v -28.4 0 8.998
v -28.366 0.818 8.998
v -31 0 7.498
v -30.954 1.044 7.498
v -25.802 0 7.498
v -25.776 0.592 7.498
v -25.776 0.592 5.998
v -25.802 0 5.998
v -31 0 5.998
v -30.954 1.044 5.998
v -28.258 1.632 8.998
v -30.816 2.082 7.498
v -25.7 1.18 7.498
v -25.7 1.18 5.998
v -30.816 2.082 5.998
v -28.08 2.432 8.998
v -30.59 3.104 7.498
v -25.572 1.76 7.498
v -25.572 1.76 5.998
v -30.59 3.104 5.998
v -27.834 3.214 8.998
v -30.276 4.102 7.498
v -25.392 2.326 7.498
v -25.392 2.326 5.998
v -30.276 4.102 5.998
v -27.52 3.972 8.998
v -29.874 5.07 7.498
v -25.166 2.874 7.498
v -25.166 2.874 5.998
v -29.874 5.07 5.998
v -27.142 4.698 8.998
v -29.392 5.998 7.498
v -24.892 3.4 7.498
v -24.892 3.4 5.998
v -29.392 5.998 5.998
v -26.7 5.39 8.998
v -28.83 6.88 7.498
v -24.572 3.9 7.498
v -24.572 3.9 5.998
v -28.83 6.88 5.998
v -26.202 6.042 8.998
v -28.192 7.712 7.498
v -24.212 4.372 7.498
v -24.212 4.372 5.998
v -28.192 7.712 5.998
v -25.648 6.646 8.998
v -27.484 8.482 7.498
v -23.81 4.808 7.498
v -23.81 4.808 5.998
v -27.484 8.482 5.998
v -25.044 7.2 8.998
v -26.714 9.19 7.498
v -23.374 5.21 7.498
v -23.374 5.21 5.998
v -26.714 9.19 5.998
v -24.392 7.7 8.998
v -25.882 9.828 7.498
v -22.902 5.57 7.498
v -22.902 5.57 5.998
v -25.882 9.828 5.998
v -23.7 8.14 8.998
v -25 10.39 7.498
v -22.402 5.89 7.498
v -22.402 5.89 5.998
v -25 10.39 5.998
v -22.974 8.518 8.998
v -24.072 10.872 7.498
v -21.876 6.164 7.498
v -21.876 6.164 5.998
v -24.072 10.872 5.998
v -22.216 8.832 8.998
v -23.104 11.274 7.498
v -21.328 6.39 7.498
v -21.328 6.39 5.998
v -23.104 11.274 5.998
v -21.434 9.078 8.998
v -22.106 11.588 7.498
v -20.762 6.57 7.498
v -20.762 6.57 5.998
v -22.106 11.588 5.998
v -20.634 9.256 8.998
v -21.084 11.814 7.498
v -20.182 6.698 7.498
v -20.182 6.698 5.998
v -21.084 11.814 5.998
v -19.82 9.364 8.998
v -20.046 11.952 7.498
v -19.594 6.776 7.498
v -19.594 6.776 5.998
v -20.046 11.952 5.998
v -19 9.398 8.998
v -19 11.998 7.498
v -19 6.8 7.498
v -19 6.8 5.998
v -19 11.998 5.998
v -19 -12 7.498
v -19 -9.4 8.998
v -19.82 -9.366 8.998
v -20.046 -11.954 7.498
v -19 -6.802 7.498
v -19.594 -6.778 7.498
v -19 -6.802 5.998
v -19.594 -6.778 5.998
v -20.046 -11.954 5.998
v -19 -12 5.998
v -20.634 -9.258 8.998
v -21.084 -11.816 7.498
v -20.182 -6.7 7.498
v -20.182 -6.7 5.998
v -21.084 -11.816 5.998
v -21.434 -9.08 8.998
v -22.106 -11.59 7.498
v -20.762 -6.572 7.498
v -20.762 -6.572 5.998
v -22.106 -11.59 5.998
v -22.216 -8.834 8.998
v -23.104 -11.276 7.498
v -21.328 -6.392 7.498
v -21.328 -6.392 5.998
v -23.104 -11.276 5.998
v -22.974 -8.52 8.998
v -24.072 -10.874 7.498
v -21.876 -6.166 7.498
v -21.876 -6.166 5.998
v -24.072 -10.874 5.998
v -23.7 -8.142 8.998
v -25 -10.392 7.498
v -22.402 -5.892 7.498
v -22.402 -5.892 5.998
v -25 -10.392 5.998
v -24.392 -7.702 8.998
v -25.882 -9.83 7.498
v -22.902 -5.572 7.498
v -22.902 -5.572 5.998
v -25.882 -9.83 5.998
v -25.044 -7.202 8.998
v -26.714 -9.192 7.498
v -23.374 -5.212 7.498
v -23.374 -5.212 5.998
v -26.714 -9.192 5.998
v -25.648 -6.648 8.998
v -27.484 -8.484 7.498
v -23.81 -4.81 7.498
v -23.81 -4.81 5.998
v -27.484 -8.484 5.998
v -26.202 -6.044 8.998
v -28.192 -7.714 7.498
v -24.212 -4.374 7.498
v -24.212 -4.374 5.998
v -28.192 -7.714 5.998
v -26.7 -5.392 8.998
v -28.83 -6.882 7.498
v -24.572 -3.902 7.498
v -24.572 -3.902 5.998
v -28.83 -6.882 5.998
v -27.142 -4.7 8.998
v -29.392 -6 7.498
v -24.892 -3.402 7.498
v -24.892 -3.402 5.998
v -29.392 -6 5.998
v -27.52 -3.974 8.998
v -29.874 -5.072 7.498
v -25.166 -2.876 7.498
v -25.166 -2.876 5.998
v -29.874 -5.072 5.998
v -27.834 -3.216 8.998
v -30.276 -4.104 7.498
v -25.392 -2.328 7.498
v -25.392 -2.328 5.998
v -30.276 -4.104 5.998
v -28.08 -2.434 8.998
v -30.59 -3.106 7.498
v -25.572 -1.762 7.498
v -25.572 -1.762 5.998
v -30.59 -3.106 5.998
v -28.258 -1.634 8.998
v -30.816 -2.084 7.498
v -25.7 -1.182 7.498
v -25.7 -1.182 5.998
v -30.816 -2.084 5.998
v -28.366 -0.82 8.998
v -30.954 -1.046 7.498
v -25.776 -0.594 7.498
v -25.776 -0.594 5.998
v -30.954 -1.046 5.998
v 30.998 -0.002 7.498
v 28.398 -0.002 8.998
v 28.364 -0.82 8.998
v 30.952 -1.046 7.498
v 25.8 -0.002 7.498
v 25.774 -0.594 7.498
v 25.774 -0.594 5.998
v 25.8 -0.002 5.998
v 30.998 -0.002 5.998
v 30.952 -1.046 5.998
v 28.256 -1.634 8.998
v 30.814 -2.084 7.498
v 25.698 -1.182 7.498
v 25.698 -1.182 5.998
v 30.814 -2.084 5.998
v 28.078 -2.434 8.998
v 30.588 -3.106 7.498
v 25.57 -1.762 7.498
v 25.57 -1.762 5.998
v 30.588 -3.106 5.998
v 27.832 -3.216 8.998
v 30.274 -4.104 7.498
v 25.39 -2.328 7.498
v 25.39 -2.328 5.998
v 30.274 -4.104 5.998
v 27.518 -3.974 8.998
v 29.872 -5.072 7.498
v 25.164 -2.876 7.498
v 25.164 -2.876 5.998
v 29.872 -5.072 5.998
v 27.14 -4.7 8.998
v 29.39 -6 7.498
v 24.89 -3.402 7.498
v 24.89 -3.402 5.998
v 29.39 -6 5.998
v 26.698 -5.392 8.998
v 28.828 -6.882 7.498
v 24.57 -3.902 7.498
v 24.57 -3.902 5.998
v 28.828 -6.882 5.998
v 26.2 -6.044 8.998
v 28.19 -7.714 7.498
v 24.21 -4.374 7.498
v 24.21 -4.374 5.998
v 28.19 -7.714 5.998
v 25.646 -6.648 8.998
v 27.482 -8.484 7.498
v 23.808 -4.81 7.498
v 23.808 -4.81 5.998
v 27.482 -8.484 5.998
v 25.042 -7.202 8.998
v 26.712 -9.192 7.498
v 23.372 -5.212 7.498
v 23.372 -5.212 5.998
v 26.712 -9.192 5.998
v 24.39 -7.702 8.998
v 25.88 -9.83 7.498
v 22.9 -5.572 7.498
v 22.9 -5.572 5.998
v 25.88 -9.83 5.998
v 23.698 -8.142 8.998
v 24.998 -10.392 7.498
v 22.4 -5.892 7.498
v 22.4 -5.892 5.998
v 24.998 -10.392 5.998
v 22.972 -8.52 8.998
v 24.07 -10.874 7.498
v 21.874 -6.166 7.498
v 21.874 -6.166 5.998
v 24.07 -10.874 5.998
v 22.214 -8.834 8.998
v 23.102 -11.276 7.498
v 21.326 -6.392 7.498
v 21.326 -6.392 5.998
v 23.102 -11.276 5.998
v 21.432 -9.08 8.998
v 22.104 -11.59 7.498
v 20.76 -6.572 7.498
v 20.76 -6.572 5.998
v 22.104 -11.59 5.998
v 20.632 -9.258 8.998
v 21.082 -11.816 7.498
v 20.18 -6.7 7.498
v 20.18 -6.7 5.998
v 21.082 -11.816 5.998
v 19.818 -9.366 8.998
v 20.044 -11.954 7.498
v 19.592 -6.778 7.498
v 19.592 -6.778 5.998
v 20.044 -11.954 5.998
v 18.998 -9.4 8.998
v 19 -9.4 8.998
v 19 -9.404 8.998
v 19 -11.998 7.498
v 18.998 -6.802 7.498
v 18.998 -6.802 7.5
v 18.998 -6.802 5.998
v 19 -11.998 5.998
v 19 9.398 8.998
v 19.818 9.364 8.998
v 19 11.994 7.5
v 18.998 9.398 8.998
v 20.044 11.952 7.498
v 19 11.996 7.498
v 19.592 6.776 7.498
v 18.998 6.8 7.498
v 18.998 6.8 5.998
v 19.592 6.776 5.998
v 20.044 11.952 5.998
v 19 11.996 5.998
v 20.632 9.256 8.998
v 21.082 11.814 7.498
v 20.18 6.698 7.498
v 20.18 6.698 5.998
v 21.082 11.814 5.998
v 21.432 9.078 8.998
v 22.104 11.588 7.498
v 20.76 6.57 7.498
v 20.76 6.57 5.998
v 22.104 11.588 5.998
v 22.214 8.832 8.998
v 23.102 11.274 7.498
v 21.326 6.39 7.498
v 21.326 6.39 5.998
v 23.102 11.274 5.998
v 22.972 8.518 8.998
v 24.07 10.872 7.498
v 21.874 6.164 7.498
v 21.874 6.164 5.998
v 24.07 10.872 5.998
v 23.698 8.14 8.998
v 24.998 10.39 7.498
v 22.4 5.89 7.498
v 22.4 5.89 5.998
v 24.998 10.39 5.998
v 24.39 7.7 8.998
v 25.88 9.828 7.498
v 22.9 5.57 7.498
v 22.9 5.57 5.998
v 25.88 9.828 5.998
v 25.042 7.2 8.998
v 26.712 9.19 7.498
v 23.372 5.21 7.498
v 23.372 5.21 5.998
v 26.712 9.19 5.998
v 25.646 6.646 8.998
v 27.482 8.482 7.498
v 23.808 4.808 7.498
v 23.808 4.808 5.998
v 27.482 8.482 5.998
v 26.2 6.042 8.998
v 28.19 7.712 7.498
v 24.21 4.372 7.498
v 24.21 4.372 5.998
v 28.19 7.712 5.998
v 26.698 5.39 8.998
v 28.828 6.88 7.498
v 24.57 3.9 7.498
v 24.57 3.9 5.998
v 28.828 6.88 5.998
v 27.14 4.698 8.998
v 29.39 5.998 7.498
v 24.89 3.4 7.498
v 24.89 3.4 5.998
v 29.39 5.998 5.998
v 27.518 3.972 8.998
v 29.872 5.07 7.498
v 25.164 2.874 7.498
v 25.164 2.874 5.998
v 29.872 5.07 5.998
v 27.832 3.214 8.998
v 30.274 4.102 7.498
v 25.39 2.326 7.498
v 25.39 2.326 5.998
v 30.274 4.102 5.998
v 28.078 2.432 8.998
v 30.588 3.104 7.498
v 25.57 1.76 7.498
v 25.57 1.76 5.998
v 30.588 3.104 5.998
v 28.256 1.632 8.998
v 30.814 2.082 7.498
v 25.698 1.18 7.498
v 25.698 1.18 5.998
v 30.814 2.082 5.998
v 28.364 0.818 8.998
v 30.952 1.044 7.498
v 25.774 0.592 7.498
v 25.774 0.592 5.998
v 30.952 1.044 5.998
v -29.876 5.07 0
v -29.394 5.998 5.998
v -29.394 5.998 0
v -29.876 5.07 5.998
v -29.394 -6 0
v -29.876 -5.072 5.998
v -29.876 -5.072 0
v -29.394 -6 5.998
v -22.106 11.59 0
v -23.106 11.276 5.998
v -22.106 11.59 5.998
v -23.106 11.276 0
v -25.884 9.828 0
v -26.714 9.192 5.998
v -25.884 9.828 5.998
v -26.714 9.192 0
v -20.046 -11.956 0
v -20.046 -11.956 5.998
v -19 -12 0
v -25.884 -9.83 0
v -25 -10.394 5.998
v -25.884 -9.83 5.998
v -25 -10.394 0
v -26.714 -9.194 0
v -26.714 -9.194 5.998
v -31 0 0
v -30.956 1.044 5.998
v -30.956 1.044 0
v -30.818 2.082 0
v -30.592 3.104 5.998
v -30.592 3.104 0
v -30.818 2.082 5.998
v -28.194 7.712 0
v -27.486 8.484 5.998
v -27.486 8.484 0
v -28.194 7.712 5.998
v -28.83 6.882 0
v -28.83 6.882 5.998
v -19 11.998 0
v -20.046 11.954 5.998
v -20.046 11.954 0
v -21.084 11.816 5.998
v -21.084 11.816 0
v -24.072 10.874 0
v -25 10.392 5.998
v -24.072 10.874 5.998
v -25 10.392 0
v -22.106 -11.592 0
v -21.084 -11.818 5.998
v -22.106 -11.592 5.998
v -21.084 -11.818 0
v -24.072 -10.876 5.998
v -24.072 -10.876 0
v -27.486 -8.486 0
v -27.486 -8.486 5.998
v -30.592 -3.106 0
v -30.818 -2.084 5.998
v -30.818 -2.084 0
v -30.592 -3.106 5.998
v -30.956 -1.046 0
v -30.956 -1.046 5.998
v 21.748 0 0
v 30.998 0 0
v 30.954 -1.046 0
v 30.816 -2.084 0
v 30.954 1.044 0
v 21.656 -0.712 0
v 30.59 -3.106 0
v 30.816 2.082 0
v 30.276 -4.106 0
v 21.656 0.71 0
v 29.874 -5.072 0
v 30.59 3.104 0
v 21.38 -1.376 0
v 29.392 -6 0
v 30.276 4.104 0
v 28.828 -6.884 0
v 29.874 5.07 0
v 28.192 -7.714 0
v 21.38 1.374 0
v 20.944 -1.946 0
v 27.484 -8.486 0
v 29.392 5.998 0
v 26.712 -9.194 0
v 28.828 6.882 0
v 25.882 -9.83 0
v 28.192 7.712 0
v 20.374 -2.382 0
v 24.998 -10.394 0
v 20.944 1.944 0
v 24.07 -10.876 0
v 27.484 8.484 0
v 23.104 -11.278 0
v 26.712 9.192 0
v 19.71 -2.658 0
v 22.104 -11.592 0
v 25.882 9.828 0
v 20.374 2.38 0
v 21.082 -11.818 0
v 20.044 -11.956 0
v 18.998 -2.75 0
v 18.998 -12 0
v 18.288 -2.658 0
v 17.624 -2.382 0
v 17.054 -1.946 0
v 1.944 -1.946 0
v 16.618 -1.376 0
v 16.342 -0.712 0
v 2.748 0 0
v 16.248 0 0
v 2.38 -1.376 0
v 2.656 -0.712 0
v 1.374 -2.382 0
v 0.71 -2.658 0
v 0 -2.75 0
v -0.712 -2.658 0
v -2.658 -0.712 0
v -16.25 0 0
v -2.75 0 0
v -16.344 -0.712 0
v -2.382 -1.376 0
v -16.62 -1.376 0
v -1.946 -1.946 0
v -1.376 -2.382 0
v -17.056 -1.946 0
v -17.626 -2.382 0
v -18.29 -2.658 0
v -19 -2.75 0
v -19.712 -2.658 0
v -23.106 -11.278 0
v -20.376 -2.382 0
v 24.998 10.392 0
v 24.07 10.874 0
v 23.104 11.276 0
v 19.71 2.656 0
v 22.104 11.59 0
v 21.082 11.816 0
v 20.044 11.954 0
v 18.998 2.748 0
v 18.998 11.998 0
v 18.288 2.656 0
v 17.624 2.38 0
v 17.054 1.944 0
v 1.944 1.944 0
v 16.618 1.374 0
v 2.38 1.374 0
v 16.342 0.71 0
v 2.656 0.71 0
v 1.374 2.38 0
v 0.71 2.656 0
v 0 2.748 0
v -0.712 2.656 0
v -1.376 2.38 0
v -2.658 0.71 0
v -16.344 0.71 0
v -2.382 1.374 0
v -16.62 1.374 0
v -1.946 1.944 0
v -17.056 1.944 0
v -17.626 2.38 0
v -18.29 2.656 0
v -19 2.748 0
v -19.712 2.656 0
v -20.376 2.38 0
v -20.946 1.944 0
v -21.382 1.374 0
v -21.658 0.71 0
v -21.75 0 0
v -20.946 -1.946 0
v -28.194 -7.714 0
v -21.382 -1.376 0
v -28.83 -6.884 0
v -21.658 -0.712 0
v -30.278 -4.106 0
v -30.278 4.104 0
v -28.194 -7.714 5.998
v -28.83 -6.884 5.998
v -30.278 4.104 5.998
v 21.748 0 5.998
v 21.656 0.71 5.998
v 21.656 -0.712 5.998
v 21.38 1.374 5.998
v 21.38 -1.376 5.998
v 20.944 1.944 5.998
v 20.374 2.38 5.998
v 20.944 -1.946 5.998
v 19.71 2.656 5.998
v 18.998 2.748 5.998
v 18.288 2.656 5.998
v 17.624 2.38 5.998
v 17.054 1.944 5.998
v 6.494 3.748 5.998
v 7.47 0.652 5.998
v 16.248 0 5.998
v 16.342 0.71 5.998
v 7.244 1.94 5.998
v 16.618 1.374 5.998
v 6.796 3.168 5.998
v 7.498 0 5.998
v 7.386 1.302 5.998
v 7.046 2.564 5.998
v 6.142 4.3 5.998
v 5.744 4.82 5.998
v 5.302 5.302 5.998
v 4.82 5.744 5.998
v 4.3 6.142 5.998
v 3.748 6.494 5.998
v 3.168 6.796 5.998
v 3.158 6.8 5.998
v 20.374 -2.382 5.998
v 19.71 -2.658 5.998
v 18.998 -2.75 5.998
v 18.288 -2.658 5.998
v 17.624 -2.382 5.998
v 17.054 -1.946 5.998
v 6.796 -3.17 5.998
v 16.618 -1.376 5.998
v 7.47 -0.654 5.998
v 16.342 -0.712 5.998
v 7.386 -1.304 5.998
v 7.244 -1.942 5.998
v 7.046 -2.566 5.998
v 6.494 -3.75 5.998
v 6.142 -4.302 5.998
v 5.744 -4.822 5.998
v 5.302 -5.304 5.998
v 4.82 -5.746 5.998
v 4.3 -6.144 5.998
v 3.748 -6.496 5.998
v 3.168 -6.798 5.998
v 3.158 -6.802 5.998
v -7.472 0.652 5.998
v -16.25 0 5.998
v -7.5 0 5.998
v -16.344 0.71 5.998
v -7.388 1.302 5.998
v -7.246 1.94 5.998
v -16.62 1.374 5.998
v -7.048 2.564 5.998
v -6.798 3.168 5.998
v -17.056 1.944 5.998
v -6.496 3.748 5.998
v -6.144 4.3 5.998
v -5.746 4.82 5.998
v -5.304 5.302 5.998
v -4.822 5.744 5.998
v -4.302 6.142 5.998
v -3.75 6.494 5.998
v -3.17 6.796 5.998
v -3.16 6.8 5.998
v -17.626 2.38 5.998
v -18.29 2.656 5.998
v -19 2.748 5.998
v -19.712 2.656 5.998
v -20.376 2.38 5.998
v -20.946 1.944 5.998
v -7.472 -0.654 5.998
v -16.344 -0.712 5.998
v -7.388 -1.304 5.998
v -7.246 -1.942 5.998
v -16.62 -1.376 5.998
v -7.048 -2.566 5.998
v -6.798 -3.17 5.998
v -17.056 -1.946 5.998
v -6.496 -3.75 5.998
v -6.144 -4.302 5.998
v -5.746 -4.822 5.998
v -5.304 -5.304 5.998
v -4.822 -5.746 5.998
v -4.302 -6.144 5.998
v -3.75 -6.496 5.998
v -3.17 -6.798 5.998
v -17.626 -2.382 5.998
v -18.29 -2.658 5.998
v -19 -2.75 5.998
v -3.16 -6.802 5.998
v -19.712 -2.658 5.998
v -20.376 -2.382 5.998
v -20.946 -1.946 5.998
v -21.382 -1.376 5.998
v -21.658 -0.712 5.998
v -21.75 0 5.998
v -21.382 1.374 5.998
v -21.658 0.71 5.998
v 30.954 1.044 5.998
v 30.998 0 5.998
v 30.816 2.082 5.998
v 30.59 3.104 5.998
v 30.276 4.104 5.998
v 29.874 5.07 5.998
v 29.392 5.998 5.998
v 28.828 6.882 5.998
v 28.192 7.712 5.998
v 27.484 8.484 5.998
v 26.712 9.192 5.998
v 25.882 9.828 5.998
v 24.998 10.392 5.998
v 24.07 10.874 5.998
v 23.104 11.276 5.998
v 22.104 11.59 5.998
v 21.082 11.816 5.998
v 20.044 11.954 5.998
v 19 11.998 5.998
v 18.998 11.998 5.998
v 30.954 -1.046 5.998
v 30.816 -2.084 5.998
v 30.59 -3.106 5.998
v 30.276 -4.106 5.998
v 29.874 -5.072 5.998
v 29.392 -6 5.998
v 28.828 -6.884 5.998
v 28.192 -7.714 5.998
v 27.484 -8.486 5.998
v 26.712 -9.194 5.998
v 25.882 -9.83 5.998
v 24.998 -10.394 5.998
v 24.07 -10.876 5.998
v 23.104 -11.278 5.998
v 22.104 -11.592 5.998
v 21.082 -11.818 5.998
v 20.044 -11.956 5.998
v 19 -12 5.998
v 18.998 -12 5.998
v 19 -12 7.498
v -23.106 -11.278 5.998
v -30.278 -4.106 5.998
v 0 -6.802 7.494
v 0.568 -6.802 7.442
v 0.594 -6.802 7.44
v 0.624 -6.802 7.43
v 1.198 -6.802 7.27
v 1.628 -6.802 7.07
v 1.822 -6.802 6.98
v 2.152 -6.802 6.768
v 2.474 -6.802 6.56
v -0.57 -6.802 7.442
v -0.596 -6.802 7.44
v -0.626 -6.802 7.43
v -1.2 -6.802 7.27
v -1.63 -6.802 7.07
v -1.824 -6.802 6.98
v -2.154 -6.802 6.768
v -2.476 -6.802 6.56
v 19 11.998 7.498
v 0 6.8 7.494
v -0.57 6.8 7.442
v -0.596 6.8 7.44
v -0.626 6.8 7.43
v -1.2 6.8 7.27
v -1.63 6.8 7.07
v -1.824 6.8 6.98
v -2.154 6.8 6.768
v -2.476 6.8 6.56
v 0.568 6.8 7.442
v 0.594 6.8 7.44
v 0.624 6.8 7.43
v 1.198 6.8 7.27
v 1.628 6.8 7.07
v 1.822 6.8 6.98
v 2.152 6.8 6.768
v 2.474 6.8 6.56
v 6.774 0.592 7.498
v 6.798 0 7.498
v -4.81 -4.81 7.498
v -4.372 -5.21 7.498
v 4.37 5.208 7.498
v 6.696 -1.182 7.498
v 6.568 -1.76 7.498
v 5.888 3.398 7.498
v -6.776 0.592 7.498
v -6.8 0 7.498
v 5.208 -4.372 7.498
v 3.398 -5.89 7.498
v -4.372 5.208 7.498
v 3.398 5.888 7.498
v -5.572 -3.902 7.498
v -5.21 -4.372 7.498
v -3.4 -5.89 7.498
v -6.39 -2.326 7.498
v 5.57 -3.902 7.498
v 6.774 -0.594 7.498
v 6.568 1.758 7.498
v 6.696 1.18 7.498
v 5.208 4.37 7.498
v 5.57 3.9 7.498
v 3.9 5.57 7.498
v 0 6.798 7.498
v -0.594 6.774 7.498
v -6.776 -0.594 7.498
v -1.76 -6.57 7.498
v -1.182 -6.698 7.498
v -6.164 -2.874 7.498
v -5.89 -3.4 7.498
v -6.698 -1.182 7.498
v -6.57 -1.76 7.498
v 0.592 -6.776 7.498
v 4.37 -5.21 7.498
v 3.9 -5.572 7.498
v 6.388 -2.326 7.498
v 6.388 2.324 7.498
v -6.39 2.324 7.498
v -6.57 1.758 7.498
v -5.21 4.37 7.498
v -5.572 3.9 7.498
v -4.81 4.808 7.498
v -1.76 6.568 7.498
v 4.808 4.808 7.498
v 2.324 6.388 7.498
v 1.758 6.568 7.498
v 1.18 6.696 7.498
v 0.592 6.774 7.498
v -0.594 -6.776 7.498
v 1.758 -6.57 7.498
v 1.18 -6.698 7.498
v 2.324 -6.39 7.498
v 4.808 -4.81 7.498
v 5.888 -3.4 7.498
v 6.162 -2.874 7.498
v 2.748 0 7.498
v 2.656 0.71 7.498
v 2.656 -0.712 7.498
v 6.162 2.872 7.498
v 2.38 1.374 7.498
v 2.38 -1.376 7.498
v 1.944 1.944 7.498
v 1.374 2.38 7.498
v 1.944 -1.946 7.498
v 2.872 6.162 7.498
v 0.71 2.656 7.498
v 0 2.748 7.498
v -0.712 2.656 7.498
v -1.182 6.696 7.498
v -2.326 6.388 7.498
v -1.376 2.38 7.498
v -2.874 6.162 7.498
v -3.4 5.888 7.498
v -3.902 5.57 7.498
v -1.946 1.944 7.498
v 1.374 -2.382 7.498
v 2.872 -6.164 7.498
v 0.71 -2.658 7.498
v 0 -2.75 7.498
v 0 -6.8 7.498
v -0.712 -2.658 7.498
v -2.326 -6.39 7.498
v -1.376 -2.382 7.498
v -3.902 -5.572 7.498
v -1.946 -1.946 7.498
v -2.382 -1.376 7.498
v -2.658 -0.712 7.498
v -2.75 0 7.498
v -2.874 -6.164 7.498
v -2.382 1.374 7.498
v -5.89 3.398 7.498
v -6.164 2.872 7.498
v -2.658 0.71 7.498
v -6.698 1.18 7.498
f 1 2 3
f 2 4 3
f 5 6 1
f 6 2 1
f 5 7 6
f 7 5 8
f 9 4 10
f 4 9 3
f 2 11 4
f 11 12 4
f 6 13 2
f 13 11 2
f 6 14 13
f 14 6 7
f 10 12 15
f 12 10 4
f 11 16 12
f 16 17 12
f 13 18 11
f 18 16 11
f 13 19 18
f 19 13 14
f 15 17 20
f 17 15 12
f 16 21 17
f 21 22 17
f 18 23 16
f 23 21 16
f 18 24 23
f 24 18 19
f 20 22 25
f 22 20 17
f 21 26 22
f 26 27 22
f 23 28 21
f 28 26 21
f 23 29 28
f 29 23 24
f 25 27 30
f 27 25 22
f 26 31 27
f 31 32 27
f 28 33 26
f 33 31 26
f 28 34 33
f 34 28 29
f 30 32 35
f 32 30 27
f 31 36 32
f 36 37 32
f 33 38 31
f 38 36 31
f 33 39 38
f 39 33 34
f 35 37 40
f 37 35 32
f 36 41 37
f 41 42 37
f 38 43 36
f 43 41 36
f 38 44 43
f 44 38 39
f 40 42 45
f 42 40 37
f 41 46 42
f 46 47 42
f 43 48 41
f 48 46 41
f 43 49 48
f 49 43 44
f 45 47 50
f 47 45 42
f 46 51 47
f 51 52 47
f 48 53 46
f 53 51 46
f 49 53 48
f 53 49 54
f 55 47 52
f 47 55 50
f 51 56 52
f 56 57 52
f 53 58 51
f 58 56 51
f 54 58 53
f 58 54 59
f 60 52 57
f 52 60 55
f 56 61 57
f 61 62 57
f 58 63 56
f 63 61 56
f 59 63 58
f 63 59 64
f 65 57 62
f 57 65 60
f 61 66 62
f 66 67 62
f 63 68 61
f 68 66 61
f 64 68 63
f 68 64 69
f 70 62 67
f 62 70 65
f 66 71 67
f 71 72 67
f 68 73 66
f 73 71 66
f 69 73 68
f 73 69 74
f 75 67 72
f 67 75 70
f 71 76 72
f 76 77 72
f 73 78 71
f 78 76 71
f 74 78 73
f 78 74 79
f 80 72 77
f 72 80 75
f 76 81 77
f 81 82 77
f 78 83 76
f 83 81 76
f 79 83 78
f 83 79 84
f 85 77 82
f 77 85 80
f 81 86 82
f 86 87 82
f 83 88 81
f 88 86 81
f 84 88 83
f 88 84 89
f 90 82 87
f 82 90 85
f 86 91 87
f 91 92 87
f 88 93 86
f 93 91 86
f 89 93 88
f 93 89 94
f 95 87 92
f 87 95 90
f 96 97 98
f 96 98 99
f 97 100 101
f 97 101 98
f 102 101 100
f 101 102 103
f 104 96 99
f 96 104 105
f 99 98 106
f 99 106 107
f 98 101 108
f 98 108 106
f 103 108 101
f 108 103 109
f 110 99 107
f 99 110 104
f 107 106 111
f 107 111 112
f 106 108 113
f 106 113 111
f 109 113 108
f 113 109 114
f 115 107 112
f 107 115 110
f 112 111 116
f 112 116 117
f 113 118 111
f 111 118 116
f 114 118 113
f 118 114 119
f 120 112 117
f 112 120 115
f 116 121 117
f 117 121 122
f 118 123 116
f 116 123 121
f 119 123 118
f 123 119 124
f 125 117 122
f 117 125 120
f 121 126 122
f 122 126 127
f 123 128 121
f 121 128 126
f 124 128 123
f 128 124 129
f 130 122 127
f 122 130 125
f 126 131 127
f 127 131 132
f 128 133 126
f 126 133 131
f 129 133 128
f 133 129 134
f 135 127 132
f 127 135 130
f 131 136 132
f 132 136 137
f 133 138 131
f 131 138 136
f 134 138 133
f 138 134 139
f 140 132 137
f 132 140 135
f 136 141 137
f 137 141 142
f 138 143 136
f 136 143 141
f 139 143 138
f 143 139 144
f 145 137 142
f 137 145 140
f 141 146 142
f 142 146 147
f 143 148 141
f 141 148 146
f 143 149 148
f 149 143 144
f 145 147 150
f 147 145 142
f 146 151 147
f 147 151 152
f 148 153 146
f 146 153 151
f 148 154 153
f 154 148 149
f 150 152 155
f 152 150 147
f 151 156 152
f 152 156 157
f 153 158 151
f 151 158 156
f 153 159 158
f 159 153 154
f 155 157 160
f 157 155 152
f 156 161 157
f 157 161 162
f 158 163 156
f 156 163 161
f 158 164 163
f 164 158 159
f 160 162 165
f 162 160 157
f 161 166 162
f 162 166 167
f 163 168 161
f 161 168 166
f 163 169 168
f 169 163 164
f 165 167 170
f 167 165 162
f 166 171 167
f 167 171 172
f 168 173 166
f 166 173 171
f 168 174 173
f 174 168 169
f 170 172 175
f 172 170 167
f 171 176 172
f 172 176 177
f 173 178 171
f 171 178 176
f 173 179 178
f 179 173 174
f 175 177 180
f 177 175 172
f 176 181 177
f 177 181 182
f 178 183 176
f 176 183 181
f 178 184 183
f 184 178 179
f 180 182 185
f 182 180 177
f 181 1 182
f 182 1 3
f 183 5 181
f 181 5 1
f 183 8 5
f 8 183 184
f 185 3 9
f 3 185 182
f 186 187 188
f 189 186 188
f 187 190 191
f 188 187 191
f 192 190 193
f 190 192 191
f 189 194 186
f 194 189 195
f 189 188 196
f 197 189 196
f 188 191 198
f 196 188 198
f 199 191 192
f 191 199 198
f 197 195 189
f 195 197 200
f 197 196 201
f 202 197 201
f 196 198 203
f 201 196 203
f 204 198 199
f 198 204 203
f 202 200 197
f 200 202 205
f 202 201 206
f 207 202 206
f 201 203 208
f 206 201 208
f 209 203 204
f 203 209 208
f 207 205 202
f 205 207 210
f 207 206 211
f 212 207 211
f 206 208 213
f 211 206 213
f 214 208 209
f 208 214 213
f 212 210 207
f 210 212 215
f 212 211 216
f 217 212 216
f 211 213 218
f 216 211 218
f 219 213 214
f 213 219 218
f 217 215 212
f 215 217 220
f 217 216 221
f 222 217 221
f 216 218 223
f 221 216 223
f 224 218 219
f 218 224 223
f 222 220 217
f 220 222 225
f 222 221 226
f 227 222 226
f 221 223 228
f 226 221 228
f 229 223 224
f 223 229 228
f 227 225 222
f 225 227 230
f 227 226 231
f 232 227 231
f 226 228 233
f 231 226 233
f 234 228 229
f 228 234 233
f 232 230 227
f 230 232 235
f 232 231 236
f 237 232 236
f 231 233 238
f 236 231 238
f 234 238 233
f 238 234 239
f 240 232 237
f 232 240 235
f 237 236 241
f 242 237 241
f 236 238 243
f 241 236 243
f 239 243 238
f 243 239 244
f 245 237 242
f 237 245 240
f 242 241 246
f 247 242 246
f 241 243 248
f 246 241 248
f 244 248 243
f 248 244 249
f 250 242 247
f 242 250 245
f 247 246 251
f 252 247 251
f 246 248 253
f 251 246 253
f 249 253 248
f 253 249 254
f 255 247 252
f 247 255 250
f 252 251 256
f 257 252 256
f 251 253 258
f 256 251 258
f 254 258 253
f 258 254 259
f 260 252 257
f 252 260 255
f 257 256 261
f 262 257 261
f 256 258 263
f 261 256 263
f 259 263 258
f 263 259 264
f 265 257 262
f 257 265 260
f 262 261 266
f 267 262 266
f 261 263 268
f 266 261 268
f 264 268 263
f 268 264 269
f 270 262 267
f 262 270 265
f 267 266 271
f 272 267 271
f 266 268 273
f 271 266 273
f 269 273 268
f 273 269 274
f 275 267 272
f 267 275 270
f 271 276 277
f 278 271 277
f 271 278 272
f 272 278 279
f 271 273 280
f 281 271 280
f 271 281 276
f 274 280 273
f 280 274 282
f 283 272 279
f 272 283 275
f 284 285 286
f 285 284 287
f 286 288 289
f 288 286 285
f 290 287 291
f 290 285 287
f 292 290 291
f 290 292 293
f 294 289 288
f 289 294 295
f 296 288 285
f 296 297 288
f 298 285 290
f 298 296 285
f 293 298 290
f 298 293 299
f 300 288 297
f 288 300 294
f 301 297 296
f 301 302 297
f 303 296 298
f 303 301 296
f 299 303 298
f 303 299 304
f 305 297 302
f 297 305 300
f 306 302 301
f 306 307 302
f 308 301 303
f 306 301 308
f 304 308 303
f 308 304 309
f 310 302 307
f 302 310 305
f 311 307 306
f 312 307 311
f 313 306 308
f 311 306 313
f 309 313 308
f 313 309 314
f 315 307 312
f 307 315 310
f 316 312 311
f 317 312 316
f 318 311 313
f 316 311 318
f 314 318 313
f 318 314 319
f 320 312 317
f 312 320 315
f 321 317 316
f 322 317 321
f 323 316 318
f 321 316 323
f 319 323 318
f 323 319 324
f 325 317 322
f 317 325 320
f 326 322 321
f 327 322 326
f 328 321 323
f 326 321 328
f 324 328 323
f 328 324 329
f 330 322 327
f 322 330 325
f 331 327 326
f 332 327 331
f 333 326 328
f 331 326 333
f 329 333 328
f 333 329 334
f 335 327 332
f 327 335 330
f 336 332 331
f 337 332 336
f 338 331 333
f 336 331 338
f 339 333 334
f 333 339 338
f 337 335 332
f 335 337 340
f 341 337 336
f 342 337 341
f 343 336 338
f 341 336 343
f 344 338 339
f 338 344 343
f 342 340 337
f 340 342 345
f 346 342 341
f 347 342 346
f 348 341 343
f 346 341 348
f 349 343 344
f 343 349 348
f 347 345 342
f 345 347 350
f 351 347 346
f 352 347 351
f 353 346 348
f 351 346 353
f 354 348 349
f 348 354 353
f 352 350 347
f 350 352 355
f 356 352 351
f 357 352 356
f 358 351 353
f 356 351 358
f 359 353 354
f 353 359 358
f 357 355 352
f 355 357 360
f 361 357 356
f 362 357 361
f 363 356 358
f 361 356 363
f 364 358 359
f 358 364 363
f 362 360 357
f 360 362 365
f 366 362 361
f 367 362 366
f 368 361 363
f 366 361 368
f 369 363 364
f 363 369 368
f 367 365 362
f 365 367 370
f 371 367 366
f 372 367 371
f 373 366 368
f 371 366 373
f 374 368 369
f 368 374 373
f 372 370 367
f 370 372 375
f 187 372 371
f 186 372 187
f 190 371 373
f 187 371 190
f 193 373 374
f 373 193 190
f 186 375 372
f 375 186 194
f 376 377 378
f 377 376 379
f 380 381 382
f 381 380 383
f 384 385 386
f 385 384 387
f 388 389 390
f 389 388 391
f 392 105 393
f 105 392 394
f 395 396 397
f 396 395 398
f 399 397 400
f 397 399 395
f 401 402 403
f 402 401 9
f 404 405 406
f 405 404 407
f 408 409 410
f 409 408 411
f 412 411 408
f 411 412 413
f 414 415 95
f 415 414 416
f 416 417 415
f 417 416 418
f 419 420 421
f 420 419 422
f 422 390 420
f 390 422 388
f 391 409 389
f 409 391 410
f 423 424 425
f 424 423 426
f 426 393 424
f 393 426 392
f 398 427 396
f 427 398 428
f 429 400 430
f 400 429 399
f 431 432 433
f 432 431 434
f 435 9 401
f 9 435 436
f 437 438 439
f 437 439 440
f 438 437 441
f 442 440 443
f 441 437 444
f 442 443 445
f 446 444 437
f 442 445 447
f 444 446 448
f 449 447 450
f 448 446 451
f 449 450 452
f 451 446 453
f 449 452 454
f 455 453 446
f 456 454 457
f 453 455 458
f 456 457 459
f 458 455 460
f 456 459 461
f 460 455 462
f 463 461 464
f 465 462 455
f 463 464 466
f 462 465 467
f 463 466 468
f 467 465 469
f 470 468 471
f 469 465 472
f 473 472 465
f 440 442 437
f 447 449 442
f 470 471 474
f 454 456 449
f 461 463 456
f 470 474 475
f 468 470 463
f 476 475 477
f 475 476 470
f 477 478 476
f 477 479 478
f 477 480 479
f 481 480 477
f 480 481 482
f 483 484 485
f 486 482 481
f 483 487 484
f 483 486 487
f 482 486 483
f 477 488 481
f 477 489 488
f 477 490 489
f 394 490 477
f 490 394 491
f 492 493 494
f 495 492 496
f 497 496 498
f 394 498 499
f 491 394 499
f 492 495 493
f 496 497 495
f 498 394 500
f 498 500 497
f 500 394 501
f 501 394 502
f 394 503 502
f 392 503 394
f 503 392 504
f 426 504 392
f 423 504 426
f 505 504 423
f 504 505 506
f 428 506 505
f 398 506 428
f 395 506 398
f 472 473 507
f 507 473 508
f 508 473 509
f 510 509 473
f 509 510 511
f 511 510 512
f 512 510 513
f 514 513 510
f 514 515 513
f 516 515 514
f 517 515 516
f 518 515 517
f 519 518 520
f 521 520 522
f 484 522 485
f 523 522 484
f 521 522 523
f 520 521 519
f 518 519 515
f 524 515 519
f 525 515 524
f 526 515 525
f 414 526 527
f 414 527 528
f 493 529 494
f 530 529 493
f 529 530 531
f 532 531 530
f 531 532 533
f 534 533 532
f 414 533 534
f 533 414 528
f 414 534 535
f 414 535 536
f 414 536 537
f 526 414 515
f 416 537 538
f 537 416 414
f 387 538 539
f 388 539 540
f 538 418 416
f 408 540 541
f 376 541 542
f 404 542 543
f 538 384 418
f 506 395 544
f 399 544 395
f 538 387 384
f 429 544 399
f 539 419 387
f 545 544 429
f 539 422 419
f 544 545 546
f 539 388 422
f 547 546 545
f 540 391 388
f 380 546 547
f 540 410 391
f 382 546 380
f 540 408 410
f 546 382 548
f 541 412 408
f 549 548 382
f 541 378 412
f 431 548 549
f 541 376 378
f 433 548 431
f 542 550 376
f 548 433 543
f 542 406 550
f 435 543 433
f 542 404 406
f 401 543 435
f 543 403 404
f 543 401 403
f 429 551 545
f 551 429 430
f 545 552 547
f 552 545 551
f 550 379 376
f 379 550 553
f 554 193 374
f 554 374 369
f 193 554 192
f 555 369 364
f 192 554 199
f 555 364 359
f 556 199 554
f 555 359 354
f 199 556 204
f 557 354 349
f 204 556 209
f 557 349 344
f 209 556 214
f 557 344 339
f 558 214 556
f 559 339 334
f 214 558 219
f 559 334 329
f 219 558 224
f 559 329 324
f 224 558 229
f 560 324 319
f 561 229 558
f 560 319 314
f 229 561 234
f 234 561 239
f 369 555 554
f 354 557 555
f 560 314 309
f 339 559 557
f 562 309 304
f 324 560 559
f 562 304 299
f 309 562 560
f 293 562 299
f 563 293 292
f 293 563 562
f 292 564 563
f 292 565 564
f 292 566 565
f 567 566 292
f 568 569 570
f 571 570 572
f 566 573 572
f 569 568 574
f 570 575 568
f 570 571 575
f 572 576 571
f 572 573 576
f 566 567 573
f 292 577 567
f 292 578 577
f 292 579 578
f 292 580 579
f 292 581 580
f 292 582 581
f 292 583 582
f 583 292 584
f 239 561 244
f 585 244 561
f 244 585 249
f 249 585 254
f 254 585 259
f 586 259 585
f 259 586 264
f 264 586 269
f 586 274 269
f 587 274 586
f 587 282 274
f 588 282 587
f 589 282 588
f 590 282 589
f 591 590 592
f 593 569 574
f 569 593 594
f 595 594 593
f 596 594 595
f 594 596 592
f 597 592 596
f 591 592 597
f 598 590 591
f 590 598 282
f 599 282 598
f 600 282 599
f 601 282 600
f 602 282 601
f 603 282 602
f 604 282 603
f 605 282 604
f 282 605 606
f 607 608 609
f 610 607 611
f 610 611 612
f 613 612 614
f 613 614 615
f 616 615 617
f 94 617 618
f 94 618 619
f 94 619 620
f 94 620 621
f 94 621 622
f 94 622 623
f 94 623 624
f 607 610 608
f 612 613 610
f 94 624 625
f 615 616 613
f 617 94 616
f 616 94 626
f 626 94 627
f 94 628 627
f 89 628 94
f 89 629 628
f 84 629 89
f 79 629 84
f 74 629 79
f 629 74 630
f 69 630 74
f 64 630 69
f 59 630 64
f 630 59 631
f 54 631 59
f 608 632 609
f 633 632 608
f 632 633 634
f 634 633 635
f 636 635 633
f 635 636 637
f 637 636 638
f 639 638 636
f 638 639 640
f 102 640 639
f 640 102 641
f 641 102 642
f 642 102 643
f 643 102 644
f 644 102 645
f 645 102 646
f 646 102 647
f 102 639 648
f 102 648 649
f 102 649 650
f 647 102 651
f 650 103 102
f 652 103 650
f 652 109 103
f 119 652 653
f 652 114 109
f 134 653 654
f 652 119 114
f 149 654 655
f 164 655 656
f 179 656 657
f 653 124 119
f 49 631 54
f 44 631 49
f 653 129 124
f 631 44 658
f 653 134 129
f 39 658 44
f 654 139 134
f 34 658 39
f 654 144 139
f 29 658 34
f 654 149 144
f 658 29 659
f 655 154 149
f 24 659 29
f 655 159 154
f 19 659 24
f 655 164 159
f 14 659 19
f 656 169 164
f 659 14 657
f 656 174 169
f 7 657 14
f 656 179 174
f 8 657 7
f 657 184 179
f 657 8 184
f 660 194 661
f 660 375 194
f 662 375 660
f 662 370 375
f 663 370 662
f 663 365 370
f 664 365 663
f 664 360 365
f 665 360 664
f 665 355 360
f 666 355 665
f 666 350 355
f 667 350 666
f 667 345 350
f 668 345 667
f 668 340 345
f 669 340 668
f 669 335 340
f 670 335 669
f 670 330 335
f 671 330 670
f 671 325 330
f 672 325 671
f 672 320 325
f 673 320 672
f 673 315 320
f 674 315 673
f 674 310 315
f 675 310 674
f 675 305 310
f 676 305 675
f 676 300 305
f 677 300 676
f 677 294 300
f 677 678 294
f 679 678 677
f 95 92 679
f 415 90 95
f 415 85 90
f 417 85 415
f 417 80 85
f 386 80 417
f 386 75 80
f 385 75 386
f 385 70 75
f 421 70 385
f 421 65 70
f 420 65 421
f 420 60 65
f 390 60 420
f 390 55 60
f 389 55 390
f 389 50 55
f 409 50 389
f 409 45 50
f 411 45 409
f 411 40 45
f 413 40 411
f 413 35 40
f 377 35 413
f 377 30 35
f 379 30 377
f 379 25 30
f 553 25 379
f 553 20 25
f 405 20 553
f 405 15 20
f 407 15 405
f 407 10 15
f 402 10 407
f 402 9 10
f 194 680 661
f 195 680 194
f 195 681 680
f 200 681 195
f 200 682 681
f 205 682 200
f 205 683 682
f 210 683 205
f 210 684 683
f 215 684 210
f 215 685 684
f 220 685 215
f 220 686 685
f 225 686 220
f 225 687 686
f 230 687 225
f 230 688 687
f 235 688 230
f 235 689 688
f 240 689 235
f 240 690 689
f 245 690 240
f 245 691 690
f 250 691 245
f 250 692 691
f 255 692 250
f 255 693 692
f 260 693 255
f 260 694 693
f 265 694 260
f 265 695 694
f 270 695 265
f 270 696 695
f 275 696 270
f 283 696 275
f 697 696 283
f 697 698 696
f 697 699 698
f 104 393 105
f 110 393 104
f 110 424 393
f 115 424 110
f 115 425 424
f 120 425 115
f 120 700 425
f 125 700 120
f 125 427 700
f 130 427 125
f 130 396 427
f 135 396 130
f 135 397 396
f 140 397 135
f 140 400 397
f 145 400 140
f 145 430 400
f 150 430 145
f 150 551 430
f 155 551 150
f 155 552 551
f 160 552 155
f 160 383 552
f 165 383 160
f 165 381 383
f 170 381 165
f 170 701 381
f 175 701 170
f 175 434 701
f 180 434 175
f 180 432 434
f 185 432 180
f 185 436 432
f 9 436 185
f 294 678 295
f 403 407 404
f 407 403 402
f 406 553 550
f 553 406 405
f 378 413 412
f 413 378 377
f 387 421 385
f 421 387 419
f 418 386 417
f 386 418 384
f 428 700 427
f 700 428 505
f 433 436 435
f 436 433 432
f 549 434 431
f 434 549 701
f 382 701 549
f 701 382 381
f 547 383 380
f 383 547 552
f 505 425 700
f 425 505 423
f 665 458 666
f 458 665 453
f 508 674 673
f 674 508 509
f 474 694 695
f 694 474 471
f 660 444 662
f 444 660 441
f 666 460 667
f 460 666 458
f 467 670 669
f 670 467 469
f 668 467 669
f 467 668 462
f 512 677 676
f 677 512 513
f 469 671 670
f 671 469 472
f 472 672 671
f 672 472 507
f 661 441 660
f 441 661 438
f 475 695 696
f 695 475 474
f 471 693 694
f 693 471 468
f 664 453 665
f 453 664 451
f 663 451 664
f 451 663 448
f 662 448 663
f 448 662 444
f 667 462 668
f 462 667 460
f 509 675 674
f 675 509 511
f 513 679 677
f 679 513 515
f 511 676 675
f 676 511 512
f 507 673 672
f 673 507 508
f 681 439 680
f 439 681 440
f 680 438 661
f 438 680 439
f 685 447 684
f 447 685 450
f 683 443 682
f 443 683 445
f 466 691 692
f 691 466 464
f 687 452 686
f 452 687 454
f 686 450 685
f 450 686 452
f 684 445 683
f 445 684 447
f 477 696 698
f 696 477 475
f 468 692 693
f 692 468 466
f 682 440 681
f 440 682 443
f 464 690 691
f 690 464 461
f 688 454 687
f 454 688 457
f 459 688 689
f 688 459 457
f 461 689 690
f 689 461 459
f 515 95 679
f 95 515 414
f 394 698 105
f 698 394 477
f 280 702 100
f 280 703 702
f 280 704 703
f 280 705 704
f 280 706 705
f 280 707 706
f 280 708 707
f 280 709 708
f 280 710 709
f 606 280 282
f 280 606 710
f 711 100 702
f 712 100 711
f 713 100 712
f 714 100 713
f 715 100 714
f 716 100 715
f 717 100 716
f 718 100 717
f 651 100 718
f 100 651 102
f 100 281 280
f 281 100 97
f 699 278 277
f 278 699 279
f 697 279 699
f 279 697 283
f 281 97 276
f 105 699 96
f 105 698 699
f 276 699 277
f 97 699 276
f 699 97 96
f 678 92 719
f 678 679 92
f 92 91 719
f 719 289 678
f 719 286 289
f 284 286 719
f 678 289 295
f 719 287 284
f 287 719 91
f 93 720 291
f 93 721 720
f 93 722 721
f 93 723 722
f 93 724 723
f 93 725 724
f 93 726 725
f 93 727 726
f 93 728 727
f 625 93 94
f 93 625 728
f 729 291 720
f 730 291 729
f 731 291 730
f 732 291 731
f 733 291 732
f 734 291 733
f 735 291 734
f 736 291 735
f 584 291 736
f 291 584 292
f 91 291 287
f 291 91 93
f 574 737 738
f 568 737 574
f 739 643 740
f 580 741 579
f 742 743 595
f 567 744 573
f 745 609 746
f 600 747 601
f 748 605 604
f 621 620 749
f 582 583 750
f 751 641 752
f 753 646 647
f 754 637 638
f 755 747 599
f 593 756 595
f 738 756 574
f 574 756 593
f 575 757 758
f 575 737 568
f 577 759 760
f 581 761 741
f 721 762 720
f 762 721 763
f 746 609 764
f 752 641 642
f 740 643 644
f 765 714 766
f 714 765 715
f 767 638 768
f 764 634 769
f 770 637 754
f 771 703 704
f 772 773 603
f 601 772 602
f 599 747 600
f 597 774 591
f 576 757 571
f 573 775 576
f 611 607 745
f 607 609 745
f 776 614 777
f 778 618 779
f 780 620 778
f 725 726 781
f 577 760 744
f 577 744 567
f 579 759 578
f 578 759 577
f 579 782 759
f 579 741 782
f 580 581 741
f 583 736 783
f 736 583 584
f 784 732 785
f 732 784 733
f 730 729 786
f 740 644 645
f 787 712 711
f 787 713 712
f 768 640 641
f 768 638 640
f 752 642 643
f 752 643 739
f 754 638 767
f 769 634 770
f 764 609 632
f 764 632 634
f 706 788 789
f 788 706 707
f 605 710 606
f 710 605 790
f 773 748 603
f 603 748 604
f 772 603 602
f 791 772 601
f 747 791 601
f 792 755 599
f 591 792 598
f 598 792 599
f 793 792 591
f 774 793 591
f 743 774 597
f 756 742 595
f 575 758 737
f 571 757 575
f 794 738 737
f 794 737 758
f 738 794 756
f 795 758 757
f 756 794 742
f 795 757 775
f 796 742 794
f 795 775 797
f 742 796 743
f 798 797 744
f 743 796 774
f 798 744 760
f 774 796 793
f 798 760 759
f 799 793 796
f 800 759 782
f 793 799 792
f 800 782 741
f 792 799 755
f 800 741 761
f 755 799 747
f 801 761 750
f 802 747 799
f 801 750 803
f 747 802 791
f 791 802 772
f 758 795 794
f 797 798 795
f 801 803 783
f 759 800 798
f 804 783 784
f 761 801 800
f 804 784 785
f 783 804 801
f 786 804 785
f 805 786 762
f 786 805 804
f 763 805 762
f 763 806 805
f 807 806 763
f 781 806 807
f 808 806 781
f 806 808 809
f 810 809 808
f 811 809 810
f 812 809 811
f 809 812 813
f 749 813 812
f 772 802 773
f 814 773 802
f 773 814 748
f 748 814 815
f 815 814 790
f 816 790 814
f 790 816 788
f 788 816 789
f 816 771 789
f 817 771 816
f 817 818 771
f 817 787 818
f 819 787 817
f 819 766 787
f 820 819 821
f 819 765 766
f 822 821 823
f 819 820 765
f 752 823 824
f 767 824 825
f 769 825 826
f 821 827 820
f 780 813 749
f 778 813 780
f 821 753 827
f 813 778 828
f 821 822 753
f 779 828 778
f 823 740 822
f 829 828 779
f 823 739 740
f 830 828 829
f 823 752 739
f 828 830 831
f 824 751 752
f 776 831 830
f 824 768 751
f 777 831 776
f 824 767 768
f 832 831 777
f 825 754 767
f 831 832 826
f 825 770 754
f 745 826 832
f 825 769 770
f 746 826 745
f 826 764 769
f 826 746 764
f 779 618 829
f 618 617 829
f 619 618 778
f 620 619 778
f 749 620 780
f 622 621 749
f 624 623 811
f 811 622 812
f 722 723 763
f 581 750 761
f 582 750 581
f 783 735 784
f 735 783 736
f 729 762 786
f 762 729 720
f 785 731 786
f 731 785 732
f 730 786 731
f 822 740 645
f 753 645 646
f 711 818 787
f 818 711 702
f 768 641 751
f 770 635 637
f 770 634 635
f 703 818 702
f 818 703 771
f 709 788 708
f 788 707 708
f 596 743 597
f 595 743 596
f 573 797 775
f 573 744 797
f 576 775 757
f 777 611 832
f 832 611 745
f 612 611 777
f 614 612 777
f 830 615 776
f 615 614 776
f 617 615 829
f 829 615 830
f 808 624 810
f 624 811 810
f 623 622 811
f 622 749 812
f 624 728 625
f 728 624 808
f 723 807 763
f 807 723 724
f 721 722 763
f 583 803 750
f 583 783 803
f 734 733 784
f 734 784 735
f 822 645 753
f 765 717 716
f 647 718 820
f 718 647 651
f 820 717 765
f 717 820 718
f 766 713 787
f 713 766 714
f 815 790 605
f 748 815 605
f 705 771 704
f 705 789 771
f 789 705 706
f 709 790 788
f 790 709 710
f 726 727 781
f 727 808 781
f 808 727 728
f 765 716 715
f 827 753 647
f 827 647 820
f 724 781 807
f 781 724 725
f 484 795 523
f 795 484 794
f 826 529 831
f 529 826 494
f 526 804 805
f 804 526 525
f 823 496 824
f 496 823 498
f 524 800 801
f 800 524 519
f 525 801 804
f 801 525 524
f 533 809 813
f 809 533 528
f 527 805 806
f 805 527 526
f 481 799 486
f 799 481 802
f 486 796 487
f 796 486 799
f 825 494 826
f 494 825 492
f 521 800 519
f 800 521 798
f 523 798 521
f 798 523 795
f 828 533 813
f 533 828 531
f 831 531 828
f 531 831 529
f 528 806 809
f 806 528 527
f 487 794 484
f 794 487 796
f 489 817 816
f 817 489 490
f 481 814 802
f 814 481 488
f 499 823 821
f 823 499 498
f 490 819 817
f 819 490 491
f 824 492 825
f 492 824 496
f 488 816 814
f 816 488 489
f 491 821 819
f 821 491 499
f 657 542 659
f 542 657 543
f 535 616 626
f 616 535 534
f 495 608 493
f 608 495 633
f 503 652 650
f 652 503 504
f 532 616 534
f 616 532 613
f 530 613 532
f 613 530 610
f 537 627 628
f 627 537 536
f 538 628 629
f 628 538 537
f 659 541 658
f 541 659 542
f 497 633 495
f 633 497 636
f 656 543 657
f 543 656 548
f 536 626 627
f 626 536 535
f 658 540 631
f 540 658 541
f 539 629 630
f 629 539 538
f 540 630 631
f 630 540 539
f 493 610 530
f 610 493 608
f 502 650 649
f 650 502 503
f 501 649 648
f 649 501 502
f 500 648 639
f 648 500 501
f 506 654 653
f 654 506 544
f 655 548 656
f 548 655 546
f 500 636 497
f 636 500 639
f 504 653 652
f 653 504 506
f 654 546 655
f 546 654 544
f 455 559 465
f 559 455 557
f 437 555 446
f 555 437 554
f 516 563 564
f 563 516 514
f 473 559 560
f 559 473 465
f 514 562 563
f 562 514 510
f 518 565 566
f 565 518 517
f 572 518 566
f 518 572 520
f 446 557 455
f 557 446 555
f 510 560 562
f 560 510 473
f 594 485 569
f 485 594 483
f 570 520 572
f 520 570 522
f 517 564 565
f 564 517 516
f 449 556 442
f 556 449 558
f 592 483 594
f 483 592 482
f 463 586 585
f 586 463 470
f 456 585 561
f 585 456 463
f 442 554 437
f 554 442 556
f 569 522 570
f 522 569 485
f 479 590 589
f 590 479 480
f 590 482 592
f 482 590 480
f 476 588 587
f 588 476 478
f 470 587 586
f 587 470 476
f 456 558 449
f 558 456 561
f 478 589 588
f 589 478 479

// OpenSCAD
//2 Hole Idler mount for top of Emmett-Delta Vertex
//
//11/23/2015    By: David Bunch
//
Ht = 6;
OD = 24;
ShimOD = 14;
ShimHt = 8.8-2;
Rad = OD / 2;
echo("Rad = ",Rad);
echo("Rad - 2.6 = ",Rad - 2.6);
X_Offset = 19;                      //Gives 38mm between outer holes
Len = X_Offset * 2;
BumpRad = Rad - 2.6;
M5 = 5.5;
M5Nut = 9.5;
BoltBumpHt = 1.5;
$fn=72;
M5_Res = 24;
Qty = 1;                //1 or 3 parts
module SideBump()
{
    difference()
    {
        rotate_extrude(convexity = 10, $fn = 72)
        translate([BumpRad, 0, 0])
        rotate([0,0,30])
        circle(r = 3, $fn = 6);
        translate([0,-20,-20])
        cube([40,40,40]);
    }
}
module Plate()
{
    union()
    {
        translate([-X_Offset,0,0])
        cylinder(d=OD,h=Ht);            //Draw Left Side of Plate
        translate([X_Offset,0,0])
        cylinder(d=OD,h=Ht);            //Draw Right Side of Plate
        translate([-X_Offset,-Rad,0])
        cube([Len,OD,Ht]);              //Draw Cube connecting Left & Right Side

        translate([-X_Offset,0,Ht])
        SideBump();                     //Draw left Side Bumps
        translate([X_Offset,0,Ht])
        rotate([0,0,180])
        SideBump();                     //Draw Right Side Bumps

        translate([-X_Offset,-BumpRad,Ht])
        rotate([0,90,0])
        cylinder(d=6,h=Len+.001,$fn=6);   //Draw Bump along the Bottom of Plate
        translate([-X_Offset,BumpRad,Ht])
        rotate([0,90,0])
        cylinder(d=6,h=Len+.001,$fn=6);      //Draw Bump along the Top of Plate
        translate([0,0,Ht])
        cylinder(d1=15,d2=13.6,h=BoltBumpHt);    //Raised Center part by 1.5mm for better fit
    }
}
module DrawFinal()
{
    difference()
    {
        Plate();
        translate([0,0,-1])
        cylinder(d=M5,h=Ht+3,$fn=M5_Res);
        translate([-X_Offset,0,-1])
        cylinder(d=M5,h=Ht+2,$fn=M5_Res);
        translate([X_Offset,0,-1])
        cylinder(d=M5,h=Ht+2,$fn=M5_Res);
    }
}
DrawFinal();
if (Qty > 2)
{
    translate([0,30,0])
    DrawFinal();
    translate([0,-30,0])
    DrawFinal();
}
